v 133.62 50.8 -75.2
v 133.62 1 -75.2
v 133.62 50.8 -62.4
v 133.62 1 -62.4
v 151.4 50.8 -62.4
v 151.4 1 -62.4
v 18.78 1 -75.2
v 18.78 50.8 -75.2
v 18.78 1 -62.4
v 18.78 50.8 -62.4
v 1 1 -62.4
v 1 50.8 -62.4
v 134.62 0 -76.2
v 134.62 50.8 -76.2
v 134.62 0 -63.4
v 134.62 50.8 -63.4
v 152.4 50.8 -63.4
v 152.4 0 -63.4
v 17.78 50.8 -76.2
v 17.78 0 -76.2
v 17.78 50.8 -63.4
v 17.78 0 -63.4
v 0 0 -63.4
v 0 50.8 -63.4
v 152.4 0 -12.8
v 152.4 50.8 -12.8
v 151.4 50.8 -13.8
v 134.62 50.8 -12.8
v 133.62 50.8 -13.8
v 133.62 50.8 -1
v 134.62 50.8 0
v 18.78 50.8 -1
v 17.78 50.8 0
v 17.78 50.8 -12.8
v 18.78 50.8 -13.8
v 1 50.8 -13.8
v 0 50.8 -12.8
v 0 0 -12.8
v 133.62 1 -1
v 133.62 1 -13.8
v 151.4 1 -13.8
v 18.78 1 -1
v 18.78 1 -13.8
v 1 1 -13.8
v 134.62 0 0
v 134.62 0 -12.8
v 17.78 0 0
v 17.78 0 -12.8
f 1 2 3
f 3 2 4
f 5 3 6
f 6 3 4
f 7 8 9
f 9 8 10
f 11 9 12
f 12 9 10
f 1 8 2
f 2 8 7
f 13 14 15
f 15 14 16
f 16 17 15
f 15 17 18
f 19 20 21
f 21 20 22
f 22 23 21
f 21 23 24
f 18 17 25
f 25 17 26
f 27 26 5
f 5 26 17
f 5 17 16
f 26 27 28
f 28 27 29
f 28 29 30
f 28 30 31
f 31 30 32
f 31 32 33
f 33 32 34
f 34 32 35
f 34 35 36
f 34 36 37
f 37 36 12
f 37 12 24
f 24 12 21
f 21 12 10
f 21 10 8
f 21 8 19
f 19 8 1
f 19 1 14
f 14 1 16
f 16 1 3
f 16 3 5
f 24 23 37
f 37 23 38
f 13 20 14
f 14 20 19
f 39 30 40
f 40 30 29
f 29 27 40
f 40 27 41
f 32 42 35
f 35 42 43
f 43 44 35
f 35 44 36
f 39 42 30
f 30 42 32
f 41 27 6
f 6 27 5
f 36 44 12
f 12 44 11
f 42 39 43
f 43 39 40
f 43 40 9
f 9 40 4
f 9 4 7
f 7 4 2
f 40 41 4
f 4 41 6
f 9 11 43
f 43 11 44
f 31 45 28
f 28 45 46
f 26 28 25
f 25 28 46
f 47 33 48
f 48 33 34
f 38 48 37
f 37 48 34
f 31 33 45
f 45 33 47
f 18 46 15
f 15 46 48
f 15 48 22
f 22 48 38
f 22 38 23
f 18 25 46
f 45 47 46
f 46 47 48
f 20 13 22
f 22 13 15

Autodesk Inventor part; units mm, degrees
ref_plane "YZ Plane" through (0, 0, 0) normal (1, 0, 0) x (0, 1, 0)
ref_plane "XZ Plane" through (0, 0, 0) normal (0, 1, 0) x (-1, 0, 0)
sketch "Sketch1" plane through (0, 0, 0) normal (0, 0, 1) x (1, 0, 0)
  line L0 (0, 0) -> (152.4, 0)
  line L1 (152.4, 0) -> (152.4, 50.8)
  line L2 (152.4, 50.8) -> (0, 50.8)
  line L3 (0, 50.8) -> (0, 0)
  line L4 (0, 50.8) -> (17.78, 50.8)
  line L5 (17.78, 0) -> (0, 0)
  line L6 (0, 0) -> (0, 50.8)
  line L7 (152.4, 0) -> (134.62, 0)
  line L8 (134.62, 50.8) -> (152.4, 50.8)
  line L9 (152.4, 50.8) -> (152.4, 0)
  dimension "d0" = 152.4
  dimension "d1" = 50.8
extrude "Extrusion1" add sketch "Sketch1" against normal blind 38.1
sketch "Sketch2" plane through (0, 0, 0) normal (0, 0, 1) x (1, 0, 0)
  line L0 (0, 50.8) -> (152.4, 50.8) projected
  line L1 (152.4, 0) -> (0, 0) projected
  line L2 (0, 50.8) -> (17.78, 50.8)
  line L3 (17.78, 50.8) -> (17.78, 0)
  line L4 (17.78, 0) -> (0, 0)
  line L5 (0, 0) -> (0, 50.8)
  line L6 (152.4, 0) -> (134.62, 0)
  line L7 (134.62, 0) -> (134.62, 50.8)
  line L8 (134.62, 50.8) -> (152.4, 50.8)
  line L9 (152.4, 50.8) -> (152.4, 0)
  point P0 (134.62, 0)
  dimension "d6" = 17.78
  dimension "d7" = 17.78
extrude "Extrusion2" cut sketch "Sketch2" against normal blind 12.8 contours L0 L3 L1 L5 | L0 L9 L1 L7
shell "Shell1" thickness 1 removed faces 2 at (56.7267, 50.8, -29.6667) at (101.6, 16.9333, -38.1)
ref_plane "Work Plane3" through (133.62, 1, -38.1) normal (0, 0, -1) x (-1, 0, 0)
mirror "Mirror2" about plane through (133.62, 1, -38.1) normal (0, 0, -1) of "Extrusion1", "Extrusion2"
shell "Shell6" thickness 1 removed faces 2 at (95.6733, 50.8, -46.5333) at (101.2667, 17.6, -38.1)
properties part number "Footprint"
